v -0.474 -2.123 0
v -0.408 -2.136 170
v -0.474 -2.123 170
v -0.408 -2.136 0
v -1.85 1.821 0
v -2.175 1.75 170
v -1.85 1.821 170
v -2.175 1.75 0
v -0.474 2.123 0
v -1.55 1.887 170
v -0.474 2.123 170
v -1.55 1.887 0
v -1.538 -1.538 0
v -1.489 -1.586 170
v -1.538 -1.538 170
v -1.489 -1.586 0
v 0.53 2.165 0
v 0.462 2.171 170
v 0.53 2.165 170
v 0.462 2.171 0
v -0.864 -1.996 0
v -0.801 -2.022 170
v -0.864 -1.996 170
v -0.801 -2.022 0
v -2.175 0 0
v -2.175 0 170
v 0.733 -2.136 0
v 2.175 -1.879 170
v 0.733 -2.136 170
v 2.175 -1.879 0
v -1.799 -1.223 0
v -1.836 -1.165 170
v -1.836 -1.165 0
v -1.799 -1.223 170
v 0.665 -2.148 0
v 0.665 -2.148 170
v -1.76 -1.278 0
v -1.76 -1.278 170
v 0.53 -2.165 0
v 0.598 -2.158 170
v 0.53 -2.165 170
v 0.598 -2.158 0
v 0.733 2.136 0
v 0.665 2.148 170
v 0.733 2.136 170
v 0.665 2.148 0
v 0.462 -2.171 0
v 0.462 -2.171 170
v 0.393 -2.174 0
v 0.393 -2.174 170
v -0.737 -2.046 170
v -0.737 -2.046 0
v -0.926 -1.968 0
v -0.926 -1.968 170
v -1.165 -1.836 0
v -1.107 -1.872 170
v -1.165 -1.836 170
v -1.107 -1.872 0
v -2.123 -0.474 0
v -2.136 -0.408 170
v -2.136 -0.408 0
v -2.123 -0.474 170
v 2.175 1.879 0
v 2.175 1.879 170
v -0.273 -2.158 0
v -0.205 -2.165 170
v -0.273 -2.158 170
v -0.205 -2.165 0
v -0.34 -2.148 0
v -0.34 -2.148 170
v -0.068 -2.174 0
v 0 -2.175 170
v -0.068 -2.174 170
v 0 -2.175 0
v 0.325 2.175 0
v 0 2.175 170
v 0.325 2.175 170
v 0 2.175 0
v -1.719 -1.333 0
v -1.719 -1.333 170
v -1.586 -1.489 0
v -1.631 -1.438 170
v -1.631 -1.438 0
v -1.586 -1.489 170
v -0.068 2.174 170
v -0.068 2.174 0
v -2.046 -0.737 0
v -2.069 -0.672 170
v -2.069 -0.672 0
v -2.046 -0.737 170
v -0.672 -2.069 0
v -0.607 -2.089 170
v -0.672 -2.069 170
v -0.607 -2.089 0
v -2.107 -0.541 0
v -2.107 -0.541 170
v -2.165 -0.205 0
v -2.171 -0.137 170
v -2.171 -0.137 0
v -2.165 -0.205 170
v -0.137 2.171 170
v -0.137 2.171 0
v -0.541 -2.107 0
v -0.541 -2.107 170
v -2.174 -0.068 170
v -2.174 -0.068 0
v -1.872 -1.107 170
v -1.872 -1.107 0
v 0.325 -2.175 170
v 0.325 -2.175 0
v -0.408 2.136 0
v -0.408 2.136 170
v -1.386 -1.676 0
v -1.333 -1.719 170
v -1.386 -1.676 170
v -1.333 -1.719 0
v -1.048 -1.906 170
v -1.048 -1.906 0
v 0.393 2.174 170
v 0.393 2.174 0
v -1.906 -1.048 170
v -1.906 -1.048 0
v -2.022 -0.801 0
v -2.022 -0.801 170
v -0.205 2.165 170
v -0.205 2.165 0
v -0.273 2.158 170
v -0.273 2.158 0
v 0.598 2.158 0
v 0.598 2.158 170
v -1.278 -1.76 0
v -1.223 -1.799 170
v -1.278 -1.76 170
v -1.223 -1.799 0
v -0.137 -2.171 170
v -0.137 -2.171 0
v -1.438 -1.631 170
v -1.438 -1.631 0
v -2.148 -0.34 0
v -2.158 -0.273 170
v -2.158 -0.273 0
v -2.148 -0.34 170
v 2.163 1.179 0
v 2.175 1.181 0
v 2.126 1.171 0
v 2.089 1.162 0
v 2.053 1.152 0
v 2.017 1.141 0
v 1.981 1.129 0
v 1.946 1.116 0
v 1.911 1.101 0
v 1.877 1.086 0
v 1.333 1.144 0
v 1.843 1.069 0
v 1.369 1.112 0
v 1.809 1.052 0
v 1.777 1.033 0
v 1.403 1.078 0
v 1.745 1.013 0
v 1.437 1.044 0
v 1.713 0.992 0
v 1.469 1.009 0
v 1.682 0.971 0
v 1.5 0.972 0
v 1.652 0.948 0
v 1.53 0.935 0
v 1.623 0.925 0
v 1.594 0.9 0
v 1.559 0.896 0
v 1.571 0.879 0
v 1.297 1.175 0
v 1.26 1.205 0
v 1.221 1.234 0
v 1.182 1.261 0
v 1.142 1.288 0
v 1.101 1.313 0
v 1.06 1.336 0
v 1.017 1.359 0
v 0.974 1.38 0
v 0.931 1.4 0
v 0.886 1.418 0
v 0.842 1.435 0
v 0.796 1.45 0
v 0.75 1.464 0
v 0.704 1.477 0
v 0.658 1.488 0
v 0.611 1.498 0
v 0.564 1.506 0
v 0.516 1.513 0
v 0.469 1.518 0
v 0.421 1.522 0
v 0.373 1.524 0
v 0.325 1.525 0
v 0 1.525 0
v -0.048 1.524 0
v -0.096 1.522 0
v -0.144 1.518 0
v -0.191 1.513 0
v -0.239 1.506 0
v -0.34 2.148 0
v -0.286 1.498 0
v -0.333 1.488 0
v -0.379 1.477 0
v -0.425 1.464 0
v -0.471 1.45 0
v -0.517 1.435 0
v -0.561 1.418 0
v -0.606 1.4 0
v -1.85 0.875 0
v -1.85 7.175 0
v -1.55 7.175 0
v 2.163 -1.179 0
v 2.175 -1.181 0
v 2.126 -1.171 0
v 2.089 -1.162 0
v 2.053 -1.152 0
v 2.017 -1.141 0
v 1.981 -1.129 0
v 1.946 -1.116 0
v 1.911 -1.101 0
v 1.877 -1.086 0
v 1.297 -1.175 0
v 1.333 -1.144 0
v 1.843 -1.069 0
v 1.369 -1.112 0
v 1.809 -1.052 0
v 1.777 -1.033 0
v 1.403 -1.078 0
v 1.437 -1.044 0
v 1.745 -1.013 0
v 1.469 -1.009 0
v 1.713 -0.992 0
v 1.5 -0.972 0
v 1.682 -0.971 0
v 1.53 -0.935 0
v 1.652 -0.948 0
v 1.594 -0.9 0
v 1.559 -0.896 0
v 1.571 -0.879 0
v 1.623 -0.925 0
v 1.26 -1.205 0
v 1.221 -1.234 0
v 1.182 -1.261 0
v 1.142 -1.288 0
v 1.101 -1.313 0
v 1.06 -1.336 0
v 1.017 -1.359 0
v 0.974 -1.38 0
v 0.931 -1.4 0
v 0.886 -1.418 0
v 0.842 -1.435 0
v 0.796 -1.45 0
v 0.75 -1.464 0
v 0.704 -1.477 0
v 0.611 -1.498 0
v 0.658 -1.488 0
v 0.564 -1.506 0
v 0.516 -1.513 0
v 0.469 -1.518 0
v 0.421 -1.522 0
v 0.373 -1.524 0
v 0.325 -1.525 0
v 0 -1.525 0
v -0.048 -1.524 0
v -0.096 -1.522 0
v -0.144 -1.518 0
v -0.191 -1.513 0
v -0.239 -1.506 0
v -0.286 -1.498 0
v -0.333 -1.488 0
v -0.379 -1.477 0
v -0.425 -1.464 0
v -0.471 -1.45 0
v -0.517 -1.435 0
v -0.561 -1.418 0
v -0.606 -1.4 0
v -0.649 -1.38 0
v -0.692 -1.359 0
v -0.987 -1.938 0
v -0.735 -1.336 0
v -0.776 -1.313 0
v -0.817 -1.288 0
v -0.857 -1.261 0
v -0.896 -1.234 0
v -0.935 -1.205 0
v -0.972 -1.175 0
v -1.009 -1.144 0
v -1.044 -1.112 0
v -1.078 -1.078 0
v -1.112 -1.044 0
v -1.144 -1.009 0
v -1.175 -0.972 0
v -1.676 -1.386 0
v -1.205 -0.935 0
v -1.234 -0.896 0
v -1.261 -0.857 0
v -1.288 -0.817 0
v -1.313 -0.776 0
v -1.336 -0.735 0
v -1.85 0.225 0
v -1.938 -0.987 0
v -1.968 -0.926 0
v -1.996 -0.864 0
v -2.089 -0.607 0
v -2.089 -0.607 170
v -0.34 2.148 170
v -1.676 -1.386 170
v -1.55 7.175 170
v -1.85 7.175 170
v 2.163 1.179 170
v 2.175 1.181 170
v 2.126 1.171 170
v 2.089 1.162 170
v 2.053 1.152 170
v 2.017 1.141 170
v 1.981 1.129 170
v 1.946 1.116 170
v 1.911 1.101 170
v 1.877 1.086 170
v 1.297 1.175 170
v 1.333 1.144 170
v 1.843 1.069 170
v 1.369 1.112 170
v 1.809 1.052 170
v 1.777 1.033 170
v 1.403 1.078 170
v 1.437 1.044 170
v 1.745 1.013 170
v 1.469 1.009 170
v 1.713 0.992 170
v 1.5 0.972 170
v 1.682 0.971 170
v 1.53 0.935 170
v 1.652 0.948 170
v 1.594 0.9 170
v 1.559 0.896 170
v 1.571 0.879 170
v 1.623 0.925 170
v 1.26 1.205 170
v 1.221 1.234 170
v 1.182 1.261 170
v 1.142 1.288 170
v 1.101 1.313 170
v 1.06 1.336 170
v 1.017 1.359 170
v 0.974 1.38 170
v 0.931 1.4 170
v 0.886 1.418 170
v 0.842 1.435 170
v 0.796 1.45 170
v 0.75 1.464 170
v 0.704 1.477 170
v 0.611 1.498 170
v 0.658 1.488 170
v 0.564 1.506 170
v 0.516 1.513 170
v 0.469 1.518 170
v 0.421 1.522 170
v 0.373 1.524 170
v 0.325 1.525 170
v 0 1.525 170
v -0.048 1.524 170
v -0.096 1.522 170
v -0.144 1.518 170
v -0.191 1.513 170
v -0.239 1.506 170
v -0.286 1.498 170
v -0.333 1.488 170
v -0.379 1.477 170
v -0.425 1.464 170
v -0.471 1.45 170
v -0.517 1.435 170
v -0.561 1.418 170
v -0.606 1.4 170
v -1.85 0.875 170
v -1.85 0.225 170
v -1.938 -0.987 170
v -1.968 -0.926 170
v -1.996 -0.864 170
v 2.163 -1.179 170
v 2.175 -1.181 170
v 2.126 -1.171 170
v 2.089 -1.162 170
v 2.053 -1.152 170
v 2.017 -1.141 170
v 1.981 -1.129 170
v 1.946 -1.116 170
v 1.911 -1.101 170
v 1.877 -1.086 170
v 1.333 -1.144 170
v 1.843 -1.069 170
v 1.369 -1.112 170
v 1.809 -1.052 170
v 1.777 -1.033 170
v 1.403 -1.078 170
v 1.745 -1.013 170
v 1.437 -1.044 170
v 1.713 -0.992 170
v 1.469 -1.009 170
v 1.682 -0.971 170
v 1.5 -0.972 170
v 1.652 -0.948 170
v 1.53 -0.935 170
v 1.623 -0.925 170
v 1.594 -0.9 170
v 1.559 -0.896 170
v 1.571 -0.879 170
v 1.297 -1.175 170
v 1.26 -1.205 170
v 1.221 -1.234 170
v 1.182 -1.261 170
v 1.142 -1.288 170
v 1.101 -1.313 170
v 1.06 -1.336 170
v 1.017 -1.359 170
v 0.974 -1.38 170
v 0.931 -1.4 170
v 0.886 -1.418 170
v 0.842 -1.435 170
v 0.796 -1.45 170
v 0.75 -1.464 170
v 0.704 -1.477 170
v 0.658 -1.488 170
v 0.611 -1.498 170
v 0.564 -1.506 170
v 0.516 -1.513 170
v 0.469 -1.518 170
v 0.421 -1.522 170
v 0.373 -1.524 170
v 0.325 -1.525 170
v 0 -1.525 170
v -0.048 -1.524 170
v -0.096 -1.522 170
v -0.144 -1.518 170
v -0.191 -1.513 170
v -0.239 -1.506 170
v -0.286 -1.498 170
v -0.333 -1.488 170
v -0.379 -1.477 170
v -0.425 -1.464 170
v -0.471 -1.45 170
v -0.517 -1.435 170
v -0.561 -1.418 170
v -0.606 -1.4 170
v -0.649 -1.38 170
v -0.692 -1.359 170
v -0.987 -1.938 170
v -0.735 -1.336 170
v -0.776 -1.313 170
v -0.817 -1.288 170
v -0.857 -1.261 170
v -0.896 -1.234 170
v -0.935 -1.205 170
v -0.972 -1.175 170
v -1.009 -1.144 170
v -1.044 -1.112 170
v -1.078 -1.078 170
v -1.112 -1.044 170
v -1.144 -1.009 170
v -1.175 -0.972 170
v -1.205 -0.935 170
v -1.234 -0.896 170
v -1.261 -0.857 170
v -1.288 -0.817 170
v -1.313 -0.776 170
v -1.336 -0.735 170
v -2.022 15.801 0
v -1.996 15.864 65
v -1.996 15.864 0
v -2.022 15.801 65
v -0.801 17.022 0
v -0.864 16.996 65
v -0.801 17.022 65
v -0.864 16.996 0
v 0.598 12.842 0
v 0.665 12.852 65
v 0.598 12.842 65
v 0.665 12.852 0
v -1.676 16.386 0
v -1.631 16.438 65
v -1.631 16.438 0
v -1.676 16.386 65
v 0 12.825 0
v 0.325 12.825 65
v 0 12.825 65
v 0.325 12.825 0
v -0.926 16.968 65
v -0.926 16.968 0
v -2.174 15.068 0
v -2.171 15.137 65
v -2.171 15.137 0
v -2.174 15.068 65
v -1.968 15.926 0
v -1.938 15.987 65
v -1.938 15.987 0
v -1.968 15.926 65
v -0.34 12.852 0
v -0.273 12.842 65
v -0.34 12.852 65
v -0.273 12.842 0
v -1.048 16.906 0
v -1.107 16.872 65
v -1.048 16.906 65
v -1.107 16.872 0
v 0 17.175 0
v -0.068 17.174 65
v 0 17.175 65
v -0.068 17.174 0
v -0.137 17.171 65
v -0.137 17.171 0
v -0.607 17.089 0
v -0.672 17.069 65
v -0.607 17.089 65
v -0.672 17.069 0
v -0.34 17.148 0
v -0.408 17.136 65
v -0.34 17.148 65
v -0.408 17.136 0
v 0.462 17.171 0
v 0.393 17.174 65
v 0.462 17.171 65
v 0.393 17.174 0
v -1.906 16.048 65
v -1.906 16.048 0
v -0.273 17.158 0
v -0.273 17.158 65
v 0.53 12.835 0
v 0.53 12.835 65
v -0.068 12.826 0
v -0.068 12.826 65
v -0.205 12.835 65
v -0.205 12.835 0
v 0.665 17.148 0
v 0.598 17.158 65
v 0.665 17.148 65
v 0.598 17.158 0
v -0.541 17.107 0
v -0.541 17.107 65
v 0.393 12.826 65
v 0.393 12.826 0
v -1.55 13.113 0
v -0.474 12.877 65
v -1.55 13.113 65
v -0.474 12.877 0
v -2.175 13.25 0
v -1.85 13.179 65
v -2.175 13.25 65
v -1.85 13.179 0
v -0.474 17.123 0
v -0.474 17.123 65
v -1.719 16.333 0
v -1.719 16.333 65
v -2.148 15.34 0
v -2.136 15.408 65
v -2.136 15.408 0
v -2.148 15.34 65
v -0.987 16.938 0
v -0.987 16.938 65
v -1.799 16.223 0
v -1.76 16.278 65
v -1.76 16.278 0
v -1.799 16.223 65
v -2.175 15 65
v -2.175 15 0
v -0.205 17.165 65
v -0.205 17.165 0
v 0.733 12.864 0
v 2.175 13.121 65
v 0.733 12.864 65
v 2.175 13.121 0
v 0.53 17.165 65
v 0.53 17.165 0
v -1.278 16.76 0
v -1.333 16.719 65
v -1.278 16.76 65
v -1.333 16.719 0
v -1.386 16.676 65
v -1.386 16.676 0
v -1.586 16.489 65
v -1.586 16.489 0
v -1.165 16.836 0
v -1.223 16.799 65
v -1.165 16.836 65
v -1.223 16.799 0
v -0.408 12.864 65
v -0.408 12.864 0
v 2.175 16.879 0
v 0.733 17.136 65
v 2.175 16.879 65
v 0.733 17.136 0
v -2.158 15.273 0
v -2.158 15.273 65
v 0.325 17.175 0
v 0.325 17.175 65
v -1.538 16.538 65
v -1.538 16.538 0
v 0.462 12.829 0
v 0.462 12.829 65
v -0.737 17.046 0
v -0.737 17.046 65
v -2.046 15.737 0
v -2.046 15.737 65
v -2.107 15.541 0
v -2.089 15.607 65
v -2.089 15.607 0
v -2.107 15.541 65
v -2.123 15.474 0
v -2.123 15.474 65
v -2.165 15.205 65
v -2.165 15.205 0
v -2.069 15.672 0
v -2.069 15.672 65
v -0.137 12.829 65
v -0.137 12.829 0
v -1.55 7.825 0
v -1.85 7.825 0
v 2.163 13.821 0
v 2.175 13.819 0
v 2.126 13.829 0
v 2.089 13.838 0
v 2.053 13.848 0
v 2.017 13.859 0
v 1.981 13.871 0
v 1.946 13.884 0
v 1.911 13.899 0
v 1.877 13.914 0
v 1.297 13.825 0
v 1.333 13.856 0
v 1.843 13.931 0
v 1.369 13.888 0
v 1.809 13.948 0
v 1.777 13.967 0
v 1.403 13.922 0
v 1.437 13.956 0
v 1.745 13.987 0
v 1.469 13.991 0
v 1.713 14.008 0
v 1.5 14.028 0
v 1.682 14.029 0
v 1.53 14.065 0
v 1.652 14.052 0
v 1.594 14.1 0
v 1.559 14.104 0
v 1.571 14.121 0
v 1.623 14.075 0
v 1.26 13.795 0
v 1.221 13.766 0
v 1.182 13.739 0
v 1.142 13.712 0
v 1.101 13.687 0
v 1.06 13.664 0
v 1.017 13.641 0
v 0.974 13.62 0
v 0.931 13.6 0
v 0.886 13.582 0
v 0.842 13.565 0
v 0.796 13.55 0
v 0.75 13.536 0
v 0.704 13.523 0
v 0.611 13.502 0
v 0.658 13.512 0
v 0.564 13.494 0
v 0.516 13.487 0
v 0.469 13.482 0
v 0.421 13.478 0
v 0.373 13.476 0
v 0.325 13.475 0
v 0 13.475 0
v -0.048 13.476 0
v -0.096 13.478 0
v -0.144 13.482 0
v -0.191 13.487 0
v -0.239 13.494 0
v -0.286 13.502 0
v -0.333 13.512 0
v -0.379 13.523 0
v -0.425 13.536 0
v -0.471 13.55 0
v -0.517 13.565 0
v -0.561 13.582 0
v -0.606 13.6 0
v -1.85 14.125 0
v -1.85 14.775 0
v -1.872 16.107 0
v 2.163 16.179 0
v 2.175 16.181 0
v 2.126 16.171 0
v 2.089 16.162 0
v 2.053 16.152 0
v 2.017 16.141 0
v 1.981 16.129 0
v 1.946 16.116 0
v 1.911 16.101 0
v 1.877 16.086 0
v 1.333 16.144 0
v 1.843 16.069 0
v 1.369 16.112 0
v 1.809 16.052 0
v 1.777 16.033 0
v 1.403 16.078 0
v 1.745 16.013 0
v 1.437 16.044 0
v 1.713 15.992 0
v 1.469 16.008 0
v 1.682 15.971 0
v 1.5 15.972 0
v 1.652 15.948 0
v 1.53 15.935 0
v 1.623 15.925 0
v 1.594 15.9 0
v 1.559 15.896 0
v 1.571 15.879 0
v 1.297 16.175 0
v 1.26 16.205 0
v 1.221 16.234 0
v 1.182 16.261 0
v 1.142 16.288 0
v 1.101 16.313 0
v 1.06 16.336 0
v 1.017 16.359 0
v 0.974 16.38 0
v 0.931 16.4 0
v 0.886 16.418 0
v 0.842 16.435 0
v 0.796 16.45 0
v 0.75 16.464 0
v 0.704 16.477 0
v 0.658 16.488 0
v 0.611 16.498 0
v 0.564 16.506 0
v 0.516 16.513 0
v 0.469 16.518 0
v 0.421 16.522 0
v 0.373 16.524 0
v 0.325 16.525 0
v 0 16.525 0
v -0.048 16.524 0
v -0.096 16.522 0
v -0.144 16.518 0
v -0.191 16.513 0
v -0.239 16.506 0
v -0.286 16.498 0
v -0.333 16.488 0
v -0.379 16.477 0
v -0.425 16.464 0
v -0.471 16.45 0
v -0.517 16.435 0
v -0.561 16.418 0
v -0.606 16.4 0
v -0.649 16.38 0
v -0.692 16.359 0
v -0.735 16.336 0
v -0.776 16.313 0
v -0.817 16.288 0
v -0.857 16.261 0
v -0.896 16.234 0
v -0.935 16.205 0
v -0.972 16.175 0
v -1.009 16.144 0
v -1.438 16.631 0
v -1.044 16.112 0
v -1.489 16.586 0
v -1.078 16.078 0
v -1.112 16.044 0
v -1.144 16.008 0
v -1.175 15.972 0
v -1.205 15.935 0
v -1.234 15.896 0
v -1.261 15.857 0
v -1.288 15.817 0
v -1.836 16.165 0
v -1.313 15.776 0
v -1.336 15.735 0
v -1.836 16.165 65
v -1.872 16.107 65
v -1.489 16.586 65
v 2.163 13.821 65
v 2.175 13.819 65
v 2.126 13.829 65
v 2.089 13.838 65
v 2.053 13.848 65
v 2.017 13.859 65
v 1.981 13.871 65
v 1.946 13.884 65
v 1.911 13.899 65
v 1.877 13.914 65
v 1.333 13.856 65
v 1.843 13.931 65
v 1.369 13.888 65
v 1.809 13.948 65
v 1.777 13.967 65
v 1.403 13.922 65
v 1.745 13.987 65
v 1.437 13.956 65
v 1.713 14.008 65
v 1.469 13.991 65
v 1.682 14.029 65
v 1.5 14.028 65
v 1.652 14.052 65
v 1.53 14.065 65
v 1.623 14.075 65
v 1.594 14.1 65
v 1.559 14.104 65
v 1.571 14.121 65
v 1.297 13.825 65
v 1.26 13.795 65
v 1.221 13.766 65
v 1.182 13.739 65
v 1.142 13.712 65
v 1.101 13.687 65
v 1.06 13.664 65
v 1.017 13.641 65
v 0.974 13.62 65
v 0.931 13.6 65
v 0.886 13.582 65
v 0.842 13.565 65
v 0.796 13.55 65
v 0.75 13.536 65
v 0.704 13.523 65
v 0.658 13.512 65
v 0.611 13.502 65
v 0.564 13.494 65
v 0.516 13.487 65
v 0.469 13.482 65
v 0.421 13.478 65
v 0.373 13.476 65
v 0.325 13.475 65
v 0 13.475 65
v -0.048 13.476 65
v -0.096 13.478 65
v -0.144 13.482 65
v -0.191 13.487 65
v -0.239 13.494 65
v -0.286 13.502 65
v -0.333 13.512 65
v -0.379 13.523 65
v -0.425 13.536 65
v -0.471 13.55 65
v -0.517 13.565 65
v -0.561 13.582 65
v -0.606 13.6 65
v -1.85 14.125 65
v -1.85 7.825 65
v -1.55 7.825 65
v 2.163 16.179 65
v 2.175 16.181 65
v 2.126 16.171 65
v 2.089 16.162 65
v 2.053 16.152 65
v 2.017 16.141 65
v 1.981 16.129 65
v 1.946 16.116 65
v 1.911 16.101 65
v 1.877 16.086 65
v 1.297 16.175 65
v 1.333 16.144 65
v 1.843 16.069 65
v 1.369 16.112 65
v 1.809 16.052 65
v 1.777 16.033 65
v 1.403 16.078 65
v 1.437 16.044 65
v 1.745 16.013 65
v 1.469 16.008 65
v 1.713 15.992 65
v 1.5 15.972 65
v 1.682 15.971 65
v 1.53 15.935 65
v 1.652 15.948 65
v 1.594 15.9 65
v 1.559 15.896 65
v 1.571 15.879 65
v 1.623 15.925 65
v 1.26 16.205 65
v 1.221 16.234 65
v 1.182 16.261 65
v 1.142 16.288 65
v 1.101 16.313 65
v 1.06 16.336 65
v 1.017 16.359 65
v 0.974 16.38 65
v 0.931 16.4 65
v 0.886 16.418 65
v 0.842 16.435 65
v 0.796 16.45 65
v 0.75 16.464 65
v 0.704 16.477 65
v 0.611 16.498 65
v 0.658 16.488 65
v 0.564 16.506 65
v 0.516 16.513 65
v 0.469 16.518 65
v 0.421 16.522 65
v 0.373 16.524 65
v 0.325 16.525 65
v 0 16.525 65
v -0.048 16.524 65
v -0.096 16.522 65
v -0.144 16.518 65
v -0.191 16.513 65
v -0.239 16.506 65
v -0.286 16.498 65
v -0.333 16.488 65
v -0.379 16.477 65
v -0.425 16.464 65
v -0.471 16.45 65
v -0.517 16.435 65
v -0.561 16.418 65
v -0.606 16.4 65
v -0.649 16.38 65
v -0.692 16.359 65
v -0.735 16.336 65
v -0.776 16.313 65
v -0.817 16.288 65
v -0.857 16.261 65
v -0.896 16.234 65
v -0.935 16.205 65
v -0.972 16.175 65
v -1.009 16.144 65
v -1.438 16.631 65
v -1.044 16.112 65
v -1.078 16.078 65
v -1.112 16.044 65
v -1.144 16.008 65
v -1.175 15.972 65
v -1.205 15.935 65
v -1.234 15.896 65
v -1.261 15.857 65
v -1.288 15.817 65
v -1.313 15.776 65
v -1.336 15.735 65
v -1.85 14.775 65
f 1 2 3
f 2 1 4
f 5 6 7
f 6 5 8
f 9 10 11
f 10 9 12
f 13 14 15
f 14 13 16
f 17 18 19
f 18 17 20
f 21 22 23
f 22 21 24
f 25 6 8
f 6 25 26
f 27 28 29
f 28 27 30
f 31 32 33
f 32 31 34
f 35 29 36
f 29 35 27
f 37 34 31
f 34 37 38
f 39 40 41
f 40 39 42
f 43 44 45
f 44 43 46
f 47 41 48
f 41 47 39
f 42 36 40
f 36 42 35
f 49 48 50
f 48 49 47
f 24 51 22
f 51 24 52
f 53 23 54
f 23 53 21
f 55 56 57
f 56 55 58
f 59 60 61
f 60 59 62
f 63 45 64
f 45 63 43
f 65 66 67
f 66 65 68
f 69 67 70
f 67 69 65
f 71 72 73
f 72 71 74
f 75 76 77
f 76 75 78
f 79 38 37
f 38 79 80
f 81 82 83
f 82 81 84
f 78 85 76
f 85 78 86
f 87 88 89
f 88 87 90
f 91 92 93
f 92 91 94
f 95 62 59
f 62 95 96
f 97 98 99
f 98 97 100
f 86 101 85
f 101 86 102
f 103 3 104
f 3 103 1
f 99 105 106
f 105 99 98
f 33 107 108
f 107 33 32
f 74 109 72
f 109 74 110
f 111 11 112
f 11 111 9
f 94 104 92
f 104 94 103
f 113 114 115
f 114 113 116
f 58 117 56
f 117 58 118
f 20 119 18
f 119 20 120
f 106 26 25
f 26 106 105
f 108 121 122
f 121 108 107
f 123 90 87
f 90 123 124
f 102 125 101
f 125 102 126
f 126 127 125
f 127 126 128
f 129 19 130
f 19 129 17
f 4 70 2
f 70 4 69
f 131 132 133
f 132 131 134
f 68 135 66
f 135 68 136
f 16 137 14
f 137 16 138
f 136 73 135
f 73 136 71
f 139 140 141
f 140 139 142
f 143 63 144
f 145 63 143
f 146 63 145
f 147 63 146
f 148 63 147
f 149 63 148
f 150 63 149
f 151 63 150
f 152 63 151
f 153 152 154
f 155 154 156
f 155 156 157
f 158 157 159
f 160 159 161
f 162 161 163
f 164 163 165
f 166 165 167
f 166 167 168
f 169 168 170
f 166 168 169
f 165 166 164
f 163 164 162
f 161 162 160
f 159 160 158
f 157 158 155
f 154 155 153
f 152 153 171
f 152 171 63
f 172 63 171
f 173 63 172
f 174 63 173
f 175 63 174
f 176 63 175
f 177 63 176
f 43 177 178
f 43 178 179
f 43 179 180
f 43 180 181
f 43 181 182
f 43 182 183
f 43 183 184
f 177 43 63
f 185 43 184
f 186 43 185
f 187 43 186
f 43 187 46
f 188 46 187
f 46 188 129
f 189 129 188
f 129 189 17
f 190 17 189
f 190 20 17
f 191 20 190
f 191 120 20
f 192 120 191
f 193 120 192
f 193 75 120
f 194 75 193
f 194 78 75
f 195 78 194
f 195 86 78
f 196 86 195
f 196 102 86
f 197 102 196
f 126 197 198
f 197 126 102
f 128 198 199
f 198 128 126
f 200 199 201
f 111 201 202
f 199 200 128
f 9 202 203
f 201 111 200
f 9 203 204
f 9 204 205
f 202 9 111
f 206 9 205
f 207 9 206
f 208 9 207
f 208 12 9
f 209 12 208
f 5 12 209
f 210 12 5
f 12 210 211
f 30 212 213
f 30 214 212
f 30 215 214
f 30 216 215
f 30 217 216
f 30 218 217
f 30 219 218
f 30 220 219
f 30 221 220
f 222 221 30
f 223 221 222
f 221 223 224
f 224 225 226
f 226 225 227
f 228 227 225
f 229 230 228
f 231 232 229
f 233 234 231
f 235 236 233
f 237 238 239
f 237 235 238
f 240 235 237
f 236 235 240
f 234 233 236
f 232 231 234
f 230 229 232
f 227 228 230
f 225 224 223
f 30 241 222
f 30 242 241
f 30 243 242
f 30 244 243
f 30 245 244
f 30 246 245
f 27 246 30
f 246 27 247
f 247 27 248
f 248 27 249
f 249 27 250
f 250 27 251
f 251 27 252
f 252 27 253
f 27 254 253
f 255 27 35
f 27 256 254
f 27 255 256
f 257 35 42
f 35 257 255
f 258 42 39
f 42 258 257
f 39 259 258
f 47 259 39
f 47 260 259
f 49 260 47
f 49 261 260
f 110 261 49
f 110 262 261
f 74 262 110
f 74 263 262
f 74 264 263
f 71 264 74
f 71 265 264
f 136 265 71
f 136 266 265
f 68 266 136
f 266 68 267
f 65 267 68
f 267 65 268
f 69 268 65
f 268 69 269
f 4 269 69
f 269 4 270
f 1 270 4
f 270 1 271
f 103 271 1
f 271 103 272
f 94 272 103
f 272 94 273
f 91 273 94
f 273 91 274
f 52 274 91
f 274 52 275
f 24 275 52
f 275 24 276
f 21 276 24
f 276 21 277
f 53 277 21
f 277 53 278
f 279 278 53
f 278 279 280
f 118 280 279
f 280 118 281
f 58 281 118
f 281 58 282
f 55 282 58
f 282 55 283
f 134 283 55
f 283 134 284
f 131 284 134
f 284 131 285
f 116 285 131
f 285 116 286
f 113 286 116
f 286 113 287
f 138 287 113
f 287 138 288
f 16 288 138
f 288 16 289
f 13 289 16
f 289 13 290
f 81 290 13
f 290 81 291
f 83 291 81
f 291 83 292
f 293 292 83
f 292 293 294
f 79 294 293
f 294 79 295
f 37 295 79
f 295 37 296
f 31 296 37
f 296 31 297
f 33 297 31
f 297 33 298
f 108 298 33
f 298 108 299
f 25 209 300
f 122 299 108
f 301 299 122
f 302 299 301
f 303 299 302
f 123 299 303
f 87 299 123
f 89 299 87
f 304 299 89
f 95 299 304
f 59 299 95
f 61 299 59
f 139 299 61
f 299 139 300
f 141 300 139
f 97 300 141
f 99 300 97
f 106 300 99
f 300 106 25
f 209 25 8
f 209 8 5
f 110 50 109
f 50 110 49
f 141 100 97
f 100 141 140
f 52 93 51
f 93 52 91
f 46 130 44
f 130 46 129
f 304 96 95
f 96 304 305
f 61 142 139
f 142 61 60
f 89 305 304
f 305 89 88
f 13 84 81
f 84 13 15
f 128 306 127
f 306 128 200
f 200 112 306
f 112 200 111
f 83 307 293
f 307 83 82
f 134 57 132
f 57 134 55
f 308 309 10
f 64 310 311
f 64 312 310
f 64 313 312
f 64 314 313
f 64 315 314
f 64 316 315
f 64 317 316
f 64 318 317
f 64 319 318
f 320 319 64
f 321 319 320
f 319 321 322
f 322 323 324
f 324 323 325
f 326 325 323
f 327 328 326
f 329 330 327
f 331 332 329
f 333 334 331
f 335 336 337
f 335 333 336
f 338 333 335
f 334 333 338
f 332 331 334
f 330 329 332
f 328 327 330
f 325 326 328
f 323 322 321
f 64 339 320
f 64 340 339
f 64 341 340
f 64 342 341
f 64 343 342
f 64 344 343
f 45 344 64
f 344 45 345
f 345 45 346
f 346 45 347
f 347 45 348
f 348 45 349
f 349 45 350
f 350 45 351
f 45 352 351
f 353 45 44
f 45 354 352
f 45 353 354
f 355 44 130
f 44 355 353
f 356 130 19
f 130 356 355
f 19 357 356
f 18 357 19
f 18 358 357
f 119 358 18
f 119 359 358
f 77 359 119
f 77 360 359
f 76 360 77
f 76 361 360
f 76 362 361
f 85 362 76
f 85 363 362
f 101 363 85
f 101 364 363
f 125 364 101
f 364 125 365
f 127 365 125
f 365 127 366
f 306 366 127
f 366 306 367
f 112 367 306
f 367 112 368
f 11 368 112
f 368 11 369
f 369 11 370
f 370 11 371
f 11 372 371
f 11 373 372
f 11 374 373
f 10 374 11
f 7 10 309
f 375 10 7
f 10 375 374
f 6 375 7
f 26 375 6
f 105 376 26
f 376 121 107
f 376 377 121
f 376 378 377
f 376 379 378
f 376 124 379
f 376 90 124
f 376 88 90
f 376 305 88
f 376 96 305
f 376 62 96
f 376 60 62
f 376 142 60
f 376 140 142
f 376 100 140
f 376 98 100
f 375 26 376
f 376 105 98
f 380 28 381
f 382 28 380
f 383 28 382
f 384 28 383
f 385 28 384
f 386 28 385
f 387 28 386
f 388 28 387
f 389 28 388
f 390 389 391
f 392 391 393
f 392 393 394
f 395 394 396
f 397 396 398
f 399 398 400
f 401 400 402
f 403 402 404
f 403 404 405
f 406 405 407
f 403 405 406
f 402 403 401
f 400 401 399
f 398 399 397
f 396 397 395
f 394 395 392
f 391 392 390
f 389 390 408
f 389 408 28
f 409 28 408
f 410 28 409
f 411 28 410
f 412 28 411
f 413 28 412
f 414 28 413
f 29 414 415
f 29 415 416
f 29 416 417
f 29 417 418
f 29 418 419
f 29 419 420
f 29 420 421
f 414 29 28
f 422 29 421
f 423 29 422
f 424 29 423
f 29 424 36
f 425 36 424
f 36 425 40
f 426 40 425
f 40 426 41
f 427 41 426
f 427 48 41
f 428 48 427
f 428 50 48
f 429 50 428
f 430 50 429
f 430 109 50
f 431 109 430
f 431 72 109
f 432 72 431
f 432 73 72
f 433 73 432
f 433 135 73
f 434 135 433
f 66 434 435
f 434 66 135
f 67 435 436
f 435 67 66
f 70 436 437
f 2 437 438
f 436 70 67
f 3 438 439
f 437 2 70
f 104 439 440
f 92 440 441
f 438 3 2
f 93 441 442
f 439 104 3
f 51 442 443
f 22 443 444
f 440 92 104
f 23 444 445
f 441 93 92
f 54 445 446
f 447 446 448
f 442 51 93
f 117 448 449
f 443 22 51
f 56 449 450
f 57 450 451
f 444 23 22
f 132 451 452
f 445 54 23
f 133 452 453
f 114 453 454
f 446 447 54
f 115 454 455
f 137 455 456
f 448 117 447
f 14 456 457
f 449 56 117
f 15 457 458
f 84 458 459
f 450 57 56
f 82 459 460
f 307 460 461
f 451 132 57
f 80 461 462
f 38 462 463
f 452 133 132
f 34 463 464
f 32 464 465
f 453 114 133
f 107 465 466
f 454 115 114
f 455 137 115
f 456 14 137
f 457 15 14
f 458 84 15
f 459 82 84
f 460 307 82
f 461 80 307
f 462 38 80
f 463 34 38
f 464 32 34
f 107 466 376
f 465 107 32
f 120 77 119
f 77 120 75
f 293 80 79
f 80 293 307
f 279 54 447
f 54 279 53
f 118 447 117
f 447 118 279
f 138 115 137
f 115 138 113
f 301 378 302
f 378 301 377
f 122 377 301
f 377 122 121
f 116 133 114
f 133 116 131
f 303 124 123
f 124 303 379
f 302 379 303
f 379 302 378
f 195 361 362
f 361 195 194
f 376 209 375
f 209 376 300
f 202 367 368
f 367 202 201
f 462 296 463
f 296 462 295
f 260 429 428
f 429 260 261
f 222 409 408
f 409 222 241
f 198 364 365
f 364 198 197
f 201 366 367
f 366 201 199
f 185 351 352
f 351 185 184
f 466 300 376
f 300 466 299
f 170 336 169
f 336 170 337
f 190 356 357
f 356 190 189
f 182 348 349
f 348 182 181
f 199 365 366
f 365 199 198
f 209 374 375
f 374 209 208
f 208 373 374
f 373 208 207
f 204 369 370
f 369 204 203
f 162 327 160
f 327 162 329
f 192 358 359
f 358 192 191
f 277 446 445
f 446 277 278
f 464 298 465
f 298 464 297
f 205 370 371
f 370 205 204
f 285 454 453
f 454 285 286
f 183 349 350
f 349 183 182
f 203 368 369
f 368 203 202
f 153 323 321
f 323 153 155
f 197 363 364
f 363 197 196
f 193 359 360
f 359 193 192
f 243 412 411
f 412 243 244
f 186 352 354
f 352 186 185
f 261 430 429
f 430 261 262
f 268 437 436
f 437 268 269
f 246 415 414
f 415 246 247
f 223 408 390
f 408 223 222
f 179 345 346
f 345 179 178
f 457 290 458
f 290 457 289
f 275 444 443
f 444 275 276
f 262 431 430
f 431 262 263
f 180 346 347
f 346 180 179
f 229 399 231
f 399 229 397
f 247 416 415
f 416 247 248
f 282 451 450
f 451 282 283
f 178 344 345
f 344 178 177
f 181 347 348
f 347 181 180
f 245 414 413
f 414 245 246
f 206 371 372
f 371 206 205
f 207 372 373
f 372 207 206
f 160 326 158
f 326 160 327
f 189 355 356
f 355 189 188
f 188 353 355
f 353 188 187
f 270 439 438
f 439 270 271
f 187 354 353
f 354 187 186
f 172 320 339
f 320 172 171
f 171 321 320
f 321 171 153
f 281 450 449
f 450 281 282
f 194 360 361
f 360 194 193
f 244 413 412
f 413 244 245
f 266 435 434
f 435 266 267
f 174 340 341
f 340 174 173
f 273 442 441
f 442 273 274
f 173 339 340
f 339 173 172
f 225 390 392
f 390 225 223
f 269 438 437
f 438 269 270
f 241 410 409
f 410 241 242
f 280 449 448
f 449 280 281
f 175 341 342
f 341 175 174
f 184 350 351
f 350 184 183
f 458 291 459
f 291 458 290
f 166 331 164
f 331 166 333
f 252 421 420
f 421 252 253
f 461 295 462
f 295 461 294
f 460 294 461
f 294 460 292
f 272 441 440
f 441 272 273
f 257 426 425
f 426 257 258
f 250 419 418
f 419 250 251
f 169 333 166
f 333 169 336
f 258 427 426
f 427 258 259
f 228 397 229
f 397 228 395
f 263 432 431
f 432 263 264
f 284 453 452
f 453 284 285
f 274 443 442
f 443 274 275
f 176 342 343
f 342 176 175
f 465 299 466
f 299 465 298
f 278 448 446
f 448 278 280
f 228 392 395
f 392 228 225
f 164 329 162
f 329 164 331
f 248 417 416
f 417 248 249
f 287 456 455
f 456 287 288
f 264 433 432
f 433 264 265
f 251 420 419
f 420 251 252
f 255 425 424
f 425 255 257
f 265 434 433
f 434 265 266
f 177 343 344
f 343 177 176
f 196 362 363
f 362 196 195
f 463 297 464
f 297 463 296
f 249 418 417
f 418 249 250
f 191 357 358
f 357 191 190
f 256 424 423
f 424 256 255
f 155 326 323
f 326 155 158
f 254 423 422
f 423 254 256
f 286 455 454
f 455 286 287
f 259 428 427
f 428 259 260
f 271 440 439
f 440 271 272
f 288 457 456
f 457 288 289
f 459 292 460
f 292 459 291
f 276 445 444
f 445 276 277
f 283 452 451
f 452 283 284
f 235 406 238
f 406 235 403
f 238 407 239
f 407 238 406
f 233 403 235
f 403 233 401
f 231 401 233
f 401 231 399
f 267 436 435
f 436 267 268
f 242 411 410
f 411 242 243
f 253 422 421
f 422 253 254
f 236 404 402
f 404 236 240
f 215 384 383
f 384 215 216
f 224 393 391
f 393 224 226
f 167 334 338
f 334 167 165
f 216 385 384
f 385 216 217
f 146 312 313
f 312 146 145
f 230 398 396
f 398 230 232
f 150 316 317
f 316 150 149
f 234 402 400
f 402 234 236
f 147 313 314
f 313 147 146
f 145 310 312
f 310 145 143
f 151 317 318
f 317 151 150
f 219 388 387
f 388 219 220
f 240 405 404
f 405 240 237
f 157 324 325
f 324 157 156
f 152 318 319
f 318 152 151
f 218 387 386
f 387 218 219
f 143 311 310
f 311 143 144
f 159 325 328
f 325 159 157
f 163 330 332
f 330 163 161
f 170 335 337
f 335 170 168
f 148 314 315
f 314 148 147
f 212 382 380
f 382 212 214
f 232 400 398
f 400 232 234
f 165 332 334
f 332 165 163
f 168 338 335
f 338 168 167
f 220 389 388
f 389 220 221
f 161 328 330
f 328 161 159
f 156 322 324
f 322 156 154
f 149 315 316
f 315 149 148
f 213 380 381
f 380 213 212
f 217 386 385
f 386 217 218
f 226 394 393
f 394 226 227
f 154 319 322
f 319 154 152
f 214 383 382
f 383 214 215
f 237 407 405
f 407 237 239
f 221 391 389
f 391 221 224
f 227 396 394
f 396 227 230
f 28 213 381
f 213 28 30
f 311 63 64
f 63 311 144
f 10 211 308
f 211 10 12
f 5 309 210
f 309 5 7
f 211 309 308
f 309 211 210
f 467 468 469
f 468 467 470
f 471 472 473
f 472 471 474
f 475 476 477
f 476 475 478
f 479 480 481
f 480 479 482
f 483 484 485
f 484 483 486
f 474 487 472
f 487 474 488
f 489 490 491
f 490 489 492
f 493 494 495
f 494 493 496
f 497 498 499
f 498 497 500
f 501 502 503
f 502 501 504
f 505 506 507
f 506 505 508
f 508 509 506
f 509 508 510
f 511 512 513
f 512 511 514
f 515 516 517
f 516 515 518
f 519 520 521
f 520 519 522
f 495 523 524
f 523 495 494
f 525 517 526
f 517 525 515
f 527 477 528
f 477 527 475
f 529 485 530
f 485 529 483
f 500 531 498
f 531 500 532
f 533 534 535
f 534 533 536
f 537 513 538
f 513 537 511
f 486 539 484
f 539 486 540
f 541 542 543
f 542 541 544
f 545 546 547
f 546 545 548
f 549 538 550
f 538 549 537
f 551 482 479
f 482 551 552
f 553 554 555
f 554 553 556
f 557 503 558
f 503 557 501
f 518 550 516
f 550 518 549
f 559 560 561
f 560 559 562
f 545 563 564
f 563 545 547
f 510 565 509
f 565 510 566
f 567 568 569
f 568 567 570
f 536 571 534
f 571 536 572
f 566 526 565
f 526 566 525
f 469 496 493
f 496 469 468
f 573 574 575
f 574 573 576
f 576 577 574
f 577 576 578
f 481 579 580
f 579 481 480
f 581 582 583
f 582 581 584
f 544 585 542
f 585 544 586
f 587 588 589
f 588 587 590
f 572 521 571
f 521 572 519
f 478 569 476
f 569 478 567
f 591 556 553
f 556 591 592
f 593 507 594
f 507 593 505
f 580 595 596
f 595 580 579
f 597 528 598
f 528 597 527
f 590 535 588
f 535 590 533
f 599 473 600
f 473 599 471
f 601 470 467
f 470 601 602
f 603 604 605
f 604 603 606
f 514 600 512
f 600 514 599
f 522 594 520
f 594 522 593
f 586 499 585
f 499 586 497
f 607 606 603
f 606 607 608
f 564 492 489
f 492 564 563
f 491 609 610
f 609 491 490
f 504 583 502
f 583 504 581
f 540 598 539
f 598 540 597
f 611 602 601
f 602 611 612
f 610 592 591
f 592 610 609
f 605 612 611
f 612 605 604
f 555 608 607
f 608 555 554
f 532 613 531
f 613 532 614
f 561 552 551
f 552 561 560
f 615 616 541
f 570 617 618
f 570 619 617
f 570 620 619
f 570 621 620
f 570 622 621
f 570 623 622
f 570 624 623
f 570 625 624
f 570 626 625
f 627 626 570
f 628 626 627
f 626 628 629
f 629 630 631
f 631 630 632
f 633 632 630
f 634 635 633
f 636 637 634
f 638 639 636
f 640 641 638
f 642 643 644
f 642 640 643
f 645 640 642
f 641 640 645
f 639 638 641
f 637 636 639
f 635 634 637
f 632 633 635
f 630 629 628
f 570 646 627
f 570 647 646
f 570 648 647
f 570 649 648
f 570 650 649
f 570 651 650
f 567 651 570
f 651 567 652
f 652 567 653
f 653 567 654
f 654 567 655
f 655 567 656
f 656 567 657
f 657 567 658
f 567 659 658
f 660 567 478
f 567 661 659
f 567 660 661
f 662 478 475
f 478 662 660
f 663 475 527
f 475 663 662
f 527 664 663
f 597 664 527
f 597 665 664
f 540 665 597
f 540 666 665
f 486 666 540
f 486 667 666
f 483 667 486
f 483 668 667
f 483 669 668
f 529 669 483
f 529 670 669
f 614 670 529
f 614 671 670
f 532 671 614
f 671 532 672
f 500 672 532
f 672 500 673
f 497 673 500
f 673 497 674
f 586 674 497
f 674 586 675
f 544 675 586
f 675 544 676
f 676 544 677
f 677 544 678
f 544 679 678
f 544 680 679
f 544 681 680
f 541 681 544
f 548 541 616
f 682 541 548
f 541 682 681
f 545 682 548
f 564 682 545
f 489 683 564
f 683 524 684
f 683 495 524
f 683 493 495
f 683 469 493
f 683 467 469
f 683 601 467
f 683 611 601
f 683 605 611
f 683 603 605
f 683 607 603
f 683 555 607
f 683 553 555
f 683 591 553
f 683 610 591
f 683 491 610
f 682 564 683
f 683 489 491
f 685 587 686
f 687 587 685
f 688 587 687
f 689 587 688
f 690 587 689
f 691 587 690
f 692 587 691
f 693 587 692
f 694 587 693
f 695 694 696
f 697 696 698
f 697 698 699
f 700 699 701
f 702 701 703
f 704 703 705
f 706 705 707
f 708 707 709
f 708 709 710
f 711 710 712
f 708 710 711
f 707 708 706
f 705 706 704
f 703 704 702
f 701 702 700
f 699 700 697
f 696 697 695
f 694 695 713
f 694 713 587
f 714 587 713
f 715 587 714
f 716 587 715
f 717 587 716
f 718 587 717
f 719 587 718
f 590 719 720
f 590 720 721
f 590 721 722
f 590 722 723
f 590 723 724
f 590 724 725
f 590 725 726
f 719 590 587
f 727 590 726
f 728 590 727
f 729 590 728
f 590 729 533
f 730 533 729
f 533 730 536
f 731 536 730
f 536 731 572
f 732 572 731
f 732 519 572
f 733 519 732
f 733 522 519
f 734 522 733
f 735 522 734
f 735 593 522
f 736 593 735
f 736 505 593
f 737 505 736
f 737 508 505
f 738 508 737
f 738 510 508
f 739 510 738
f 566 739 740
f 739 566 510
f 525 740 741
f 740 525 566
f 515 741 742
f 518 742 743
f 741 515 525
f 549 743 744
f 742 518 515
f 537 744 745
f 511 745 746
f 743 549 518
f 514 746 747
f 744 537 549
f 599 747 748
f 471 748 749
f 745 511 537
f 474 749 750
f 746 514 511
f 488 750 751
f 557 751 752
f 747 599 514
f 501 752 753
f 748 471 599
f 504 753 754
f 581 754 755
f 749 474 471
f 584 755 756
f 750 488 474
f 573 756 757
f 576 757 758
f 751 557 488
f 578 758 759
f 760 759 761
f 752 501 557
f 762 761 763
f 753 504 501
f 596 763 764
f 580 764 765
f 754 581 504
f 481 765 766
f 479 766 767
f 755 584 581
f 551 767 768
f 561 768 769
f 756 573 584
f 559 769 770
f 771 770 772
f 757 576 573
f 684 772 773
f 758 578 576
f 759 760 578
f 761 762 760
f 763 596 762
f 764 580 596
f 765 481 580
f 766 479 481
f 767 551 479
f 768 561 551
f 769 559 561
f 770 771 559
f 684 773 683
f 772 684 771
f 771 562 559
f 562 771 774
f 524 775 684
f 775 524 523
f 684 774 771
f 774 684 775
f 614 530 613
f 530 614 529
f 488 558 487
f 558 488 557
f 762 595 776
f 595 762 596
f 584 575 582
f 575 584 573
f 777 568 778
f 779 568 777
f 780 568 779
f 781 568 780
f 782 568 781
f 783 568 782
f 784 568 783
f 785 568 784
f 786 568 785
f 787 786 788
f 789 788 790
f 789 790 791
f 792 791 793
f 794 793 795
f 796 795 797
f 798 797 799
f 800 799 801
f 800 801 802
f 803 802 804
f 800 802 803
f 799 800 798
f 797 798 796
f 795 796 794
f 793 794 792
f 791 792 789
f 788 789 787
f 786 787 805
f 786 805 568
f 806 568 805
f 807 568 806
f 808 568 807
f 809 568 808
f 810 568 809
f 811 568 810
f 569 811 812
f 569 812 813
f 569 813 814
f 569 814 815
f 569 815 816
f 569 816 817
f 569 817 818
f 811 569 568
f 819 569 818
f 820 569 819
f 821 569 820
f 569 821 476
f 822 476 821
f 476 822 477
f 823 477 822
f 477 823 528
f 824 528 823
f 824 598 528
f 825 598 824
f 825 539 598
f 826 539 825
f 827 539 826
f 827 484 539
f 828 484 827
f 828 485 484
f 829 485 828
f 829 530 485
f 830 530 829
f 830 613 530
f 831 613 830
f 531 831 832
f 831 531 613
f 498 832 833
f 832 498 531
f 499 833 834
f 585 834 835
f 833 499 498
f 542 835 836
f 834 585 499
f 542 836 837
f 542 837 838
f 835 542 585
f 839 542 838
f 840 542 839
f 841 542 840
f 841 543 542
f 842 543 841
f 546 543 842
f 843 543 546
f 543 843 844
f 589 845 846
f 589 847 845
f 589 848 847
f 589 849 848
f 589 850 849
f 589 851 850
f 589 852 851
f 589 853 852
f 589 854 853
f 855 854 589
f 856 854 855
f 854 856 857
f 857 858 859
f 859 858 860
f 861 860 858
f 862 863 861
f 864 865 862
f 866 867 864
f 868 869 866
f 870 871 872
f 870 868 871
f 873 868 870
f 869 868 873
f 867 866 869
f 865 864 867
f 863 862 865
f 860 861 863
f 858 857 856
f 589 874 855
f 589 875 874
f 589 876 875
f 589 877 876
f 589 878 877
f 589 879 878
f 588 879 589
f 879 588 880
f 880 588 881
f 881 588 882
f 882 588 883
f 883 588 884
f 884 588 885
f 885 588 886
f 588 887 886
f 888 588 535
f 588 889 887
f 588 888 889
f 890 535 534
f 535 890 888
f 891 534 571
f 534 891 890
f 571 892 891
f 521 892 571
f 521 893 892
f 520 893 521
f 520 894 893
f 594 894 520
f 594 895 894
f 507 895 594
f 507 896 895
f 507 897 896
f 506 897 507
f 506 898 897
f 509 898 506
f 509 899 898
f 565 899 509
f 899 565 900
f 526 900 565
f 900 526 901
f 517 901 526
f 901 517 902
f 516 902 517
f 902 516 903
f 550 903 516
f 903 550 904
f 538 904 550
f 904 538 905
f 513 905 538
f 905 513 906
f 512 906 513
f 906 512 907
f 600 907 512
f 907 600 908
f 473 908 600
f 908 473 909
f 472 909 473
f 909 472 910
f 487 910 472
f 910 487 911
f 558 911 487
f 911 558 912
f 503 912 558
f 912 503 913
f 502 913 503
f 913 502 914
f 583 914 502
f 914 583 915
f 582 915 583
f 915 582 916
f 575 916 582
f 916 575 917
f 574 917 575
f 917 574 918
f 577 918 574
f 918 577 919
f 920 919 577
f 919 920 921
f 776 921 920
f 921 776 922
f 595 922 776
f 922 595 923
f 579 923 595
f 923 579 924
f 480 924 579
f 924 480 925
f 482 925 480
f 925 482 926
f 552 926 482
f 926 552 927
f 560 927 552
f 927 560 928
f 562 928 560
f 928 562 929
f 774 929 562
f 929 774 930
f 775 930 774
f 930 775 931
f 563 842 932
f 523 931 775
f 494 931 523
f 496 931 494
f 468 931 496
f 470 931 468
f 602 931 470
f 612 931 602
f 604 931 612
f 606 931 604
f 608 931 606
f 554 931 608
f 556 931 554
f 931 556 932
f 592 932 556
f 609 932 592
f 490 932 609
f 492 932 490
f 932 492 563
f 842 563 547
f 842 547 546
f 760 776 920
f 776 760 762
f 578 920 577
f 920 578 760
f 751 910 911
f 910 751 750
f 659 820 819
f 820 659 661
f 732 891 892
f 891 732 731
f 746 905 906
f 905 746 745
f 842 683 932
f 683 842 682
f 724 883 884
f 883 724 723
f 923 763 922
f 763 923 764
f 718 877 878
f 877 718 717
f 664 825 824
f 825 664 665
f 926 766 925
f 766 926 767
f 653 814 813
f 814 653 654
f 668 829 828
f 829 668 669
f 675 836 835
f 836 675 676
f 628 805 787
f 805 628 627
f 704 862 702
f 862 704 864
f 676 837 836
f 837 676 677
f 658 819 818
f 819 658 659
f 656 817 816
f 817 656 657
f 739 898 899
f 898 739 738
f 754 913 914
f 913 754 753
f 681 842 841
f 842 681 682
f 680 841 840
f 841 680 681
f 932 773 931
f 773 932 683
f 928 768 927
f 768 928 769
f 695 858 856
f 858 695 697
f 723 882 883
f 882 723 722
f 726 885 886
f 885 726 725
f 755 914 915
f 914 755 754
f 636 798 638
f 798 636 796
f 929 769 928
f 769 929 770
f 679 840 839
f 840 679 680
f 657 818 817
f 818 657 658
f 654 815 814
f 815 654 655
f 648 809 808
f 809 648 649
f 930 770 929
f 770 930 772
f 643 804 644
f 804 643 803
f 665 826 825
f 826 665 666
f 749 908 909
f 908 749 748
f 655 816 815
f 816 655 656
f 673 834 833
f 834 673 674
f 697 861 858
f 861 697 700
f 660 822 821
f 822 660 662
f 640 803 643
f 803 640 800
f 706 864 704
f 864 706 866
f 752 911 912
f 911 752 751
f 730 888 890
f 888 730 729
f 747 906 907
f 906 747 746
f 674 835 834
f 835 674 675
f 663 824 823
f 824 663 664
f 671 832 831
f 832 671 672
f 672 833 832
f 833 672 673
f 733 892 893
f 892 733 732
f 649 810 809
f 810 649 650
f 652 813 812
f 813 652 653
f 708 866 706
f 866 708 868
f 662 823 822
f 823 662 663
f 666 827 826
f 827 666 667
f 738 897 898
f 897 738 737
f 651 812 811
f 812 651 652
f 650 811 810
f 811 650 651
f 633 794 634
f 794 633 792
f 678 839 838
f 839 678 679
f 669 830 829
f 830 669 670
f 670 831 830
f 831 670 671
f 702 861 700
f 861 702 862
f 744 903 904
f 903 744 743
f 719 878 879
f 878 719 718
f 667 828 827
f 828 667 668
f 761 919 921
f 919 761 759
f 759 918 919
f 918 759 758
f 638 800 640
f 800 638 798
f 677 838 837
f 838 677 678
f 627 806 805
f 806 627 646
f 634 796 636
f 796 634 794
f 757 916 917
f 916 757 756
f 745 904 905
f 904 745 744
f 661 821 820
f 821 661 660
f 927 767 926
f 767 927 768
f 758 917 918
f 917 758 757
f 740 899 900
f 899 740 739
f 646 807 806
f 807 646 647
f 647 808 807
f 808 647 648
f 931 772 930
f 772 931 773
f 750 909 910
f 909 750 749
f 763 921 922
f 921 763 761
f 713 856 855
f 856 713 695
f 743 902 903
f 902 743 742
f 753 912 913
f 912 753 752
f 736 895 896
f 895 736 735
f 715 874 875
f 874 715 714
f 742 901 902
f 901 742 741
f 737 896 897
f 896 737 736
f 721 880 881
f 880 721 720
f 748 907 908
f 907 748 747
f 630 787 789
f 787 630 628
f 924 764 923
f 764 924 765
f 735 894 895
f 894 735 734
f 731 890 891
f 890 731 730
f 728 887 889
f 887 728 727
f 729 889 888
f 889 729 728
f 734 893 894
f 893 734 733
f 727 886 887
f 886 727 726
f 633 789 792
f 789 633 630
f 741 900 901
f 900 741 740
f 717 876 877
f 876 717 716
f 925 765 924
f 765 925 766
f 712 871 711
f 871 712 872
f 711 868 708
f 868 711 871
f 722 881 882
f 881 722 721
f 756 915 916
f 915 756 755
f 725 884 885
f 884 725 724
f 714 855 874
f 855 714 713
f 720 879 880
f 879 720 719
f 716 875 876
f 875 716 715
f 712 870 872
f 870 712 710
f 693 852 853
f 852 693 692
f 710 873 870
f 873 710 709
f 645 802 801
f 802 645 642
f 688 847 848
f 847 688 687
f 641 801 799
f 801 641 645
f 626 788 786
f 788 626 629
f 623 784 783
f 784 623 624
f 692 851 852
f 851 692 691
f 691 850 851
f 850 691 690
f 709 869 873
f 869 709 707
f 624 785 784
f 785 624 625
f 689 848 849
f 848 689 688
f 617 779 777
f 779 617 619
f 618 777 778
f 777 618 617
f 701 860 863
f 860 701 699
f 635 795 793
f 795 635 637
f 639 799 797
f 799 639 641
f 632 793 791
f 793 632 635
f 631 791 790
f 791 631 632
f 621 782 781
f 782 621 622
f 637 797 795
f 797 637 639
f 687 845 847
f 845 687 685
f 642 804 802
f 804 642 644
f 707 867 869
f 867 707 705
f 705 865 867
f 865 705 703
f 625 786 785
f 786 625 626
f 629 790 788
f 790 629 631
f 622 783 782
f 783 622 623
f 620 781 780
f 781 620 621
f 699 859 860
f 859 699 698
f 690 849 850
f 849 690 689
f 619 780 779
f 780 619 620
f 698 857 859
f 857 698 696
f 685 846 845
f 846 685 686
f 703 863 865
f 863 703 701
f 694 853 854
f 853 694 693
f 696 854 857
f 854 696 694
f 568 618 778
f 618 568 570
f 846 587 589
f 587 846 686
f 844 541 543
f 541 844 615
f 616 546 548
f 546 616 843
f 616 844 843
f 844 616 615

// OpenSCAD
USB_CABLE_D =   2.65    + .2    + .2;
H           =  30;
WALL        =   0.75            - .1;
WALL2        =  0.3;


$fn = 200;
ATOM = 0.01;

%cylinder(d=USB_CABLE_D, h=H);

module segment(h) {
    difference() {
        dx = USB_CABLE_D/2;
        hull() {
            cylinder(d=USB_CABLE_D+WALL*2, h=h);

            translate([WALL/2, 0, 0])
            cylinder(d=USB_CABLE_D+WALL*2, h=h);

            translate([dx+WALL*1, 0, 0])
            cylinder(d=USB_CABLE_D + WALL*1, h=h);
            
            translate([-USB_CABLE_D/2 - WALL, USB_CABLE_D/2 -WALL/2-.1, 0])
            cube([WALL, WALL, h]);
        }

        hull() {
            cylinder(d=USB_CABLE_D, h=h*3, center=true);

            translate([WALL*.5, 0, 0])
            cylinder(d=USB_CABLE_D, h=h*3, center=true);

            translate([-USB_CABLE_D/2 + WALL*0, USB_CABLE_D/2-WALL-WALL/2, 0])
            cube([WALL, WALL, h*3], center=true);
        }

        translate([dx/2 + WALL*2.5, 0, 0])
        cylinder(d=USB_CABLE_D - WALL, h=h*3, center=true);

        translate([USB_CABLE_D*1.5 + WALL*.5*2, 0, 0])
        cube([USB_CABLE_D*2, USB_CABLE_D*2, h*3], center=true);

        translate([-USB_CABLE_D/2 - WALL+WALL2, USB_CABLE_D/2 + WALL, 0])
        cube([.1, .2, h*3], center=true);
    }

    translate([-USB_CABLE_D/2-WALL/2, USB_CABLE_D/2, 0])
    cube([WALL2, WALL*1 + 5, h]);
}

segment(170);

translate([0, 15, 0])
scale([1, -1, 1])
segment(65);
